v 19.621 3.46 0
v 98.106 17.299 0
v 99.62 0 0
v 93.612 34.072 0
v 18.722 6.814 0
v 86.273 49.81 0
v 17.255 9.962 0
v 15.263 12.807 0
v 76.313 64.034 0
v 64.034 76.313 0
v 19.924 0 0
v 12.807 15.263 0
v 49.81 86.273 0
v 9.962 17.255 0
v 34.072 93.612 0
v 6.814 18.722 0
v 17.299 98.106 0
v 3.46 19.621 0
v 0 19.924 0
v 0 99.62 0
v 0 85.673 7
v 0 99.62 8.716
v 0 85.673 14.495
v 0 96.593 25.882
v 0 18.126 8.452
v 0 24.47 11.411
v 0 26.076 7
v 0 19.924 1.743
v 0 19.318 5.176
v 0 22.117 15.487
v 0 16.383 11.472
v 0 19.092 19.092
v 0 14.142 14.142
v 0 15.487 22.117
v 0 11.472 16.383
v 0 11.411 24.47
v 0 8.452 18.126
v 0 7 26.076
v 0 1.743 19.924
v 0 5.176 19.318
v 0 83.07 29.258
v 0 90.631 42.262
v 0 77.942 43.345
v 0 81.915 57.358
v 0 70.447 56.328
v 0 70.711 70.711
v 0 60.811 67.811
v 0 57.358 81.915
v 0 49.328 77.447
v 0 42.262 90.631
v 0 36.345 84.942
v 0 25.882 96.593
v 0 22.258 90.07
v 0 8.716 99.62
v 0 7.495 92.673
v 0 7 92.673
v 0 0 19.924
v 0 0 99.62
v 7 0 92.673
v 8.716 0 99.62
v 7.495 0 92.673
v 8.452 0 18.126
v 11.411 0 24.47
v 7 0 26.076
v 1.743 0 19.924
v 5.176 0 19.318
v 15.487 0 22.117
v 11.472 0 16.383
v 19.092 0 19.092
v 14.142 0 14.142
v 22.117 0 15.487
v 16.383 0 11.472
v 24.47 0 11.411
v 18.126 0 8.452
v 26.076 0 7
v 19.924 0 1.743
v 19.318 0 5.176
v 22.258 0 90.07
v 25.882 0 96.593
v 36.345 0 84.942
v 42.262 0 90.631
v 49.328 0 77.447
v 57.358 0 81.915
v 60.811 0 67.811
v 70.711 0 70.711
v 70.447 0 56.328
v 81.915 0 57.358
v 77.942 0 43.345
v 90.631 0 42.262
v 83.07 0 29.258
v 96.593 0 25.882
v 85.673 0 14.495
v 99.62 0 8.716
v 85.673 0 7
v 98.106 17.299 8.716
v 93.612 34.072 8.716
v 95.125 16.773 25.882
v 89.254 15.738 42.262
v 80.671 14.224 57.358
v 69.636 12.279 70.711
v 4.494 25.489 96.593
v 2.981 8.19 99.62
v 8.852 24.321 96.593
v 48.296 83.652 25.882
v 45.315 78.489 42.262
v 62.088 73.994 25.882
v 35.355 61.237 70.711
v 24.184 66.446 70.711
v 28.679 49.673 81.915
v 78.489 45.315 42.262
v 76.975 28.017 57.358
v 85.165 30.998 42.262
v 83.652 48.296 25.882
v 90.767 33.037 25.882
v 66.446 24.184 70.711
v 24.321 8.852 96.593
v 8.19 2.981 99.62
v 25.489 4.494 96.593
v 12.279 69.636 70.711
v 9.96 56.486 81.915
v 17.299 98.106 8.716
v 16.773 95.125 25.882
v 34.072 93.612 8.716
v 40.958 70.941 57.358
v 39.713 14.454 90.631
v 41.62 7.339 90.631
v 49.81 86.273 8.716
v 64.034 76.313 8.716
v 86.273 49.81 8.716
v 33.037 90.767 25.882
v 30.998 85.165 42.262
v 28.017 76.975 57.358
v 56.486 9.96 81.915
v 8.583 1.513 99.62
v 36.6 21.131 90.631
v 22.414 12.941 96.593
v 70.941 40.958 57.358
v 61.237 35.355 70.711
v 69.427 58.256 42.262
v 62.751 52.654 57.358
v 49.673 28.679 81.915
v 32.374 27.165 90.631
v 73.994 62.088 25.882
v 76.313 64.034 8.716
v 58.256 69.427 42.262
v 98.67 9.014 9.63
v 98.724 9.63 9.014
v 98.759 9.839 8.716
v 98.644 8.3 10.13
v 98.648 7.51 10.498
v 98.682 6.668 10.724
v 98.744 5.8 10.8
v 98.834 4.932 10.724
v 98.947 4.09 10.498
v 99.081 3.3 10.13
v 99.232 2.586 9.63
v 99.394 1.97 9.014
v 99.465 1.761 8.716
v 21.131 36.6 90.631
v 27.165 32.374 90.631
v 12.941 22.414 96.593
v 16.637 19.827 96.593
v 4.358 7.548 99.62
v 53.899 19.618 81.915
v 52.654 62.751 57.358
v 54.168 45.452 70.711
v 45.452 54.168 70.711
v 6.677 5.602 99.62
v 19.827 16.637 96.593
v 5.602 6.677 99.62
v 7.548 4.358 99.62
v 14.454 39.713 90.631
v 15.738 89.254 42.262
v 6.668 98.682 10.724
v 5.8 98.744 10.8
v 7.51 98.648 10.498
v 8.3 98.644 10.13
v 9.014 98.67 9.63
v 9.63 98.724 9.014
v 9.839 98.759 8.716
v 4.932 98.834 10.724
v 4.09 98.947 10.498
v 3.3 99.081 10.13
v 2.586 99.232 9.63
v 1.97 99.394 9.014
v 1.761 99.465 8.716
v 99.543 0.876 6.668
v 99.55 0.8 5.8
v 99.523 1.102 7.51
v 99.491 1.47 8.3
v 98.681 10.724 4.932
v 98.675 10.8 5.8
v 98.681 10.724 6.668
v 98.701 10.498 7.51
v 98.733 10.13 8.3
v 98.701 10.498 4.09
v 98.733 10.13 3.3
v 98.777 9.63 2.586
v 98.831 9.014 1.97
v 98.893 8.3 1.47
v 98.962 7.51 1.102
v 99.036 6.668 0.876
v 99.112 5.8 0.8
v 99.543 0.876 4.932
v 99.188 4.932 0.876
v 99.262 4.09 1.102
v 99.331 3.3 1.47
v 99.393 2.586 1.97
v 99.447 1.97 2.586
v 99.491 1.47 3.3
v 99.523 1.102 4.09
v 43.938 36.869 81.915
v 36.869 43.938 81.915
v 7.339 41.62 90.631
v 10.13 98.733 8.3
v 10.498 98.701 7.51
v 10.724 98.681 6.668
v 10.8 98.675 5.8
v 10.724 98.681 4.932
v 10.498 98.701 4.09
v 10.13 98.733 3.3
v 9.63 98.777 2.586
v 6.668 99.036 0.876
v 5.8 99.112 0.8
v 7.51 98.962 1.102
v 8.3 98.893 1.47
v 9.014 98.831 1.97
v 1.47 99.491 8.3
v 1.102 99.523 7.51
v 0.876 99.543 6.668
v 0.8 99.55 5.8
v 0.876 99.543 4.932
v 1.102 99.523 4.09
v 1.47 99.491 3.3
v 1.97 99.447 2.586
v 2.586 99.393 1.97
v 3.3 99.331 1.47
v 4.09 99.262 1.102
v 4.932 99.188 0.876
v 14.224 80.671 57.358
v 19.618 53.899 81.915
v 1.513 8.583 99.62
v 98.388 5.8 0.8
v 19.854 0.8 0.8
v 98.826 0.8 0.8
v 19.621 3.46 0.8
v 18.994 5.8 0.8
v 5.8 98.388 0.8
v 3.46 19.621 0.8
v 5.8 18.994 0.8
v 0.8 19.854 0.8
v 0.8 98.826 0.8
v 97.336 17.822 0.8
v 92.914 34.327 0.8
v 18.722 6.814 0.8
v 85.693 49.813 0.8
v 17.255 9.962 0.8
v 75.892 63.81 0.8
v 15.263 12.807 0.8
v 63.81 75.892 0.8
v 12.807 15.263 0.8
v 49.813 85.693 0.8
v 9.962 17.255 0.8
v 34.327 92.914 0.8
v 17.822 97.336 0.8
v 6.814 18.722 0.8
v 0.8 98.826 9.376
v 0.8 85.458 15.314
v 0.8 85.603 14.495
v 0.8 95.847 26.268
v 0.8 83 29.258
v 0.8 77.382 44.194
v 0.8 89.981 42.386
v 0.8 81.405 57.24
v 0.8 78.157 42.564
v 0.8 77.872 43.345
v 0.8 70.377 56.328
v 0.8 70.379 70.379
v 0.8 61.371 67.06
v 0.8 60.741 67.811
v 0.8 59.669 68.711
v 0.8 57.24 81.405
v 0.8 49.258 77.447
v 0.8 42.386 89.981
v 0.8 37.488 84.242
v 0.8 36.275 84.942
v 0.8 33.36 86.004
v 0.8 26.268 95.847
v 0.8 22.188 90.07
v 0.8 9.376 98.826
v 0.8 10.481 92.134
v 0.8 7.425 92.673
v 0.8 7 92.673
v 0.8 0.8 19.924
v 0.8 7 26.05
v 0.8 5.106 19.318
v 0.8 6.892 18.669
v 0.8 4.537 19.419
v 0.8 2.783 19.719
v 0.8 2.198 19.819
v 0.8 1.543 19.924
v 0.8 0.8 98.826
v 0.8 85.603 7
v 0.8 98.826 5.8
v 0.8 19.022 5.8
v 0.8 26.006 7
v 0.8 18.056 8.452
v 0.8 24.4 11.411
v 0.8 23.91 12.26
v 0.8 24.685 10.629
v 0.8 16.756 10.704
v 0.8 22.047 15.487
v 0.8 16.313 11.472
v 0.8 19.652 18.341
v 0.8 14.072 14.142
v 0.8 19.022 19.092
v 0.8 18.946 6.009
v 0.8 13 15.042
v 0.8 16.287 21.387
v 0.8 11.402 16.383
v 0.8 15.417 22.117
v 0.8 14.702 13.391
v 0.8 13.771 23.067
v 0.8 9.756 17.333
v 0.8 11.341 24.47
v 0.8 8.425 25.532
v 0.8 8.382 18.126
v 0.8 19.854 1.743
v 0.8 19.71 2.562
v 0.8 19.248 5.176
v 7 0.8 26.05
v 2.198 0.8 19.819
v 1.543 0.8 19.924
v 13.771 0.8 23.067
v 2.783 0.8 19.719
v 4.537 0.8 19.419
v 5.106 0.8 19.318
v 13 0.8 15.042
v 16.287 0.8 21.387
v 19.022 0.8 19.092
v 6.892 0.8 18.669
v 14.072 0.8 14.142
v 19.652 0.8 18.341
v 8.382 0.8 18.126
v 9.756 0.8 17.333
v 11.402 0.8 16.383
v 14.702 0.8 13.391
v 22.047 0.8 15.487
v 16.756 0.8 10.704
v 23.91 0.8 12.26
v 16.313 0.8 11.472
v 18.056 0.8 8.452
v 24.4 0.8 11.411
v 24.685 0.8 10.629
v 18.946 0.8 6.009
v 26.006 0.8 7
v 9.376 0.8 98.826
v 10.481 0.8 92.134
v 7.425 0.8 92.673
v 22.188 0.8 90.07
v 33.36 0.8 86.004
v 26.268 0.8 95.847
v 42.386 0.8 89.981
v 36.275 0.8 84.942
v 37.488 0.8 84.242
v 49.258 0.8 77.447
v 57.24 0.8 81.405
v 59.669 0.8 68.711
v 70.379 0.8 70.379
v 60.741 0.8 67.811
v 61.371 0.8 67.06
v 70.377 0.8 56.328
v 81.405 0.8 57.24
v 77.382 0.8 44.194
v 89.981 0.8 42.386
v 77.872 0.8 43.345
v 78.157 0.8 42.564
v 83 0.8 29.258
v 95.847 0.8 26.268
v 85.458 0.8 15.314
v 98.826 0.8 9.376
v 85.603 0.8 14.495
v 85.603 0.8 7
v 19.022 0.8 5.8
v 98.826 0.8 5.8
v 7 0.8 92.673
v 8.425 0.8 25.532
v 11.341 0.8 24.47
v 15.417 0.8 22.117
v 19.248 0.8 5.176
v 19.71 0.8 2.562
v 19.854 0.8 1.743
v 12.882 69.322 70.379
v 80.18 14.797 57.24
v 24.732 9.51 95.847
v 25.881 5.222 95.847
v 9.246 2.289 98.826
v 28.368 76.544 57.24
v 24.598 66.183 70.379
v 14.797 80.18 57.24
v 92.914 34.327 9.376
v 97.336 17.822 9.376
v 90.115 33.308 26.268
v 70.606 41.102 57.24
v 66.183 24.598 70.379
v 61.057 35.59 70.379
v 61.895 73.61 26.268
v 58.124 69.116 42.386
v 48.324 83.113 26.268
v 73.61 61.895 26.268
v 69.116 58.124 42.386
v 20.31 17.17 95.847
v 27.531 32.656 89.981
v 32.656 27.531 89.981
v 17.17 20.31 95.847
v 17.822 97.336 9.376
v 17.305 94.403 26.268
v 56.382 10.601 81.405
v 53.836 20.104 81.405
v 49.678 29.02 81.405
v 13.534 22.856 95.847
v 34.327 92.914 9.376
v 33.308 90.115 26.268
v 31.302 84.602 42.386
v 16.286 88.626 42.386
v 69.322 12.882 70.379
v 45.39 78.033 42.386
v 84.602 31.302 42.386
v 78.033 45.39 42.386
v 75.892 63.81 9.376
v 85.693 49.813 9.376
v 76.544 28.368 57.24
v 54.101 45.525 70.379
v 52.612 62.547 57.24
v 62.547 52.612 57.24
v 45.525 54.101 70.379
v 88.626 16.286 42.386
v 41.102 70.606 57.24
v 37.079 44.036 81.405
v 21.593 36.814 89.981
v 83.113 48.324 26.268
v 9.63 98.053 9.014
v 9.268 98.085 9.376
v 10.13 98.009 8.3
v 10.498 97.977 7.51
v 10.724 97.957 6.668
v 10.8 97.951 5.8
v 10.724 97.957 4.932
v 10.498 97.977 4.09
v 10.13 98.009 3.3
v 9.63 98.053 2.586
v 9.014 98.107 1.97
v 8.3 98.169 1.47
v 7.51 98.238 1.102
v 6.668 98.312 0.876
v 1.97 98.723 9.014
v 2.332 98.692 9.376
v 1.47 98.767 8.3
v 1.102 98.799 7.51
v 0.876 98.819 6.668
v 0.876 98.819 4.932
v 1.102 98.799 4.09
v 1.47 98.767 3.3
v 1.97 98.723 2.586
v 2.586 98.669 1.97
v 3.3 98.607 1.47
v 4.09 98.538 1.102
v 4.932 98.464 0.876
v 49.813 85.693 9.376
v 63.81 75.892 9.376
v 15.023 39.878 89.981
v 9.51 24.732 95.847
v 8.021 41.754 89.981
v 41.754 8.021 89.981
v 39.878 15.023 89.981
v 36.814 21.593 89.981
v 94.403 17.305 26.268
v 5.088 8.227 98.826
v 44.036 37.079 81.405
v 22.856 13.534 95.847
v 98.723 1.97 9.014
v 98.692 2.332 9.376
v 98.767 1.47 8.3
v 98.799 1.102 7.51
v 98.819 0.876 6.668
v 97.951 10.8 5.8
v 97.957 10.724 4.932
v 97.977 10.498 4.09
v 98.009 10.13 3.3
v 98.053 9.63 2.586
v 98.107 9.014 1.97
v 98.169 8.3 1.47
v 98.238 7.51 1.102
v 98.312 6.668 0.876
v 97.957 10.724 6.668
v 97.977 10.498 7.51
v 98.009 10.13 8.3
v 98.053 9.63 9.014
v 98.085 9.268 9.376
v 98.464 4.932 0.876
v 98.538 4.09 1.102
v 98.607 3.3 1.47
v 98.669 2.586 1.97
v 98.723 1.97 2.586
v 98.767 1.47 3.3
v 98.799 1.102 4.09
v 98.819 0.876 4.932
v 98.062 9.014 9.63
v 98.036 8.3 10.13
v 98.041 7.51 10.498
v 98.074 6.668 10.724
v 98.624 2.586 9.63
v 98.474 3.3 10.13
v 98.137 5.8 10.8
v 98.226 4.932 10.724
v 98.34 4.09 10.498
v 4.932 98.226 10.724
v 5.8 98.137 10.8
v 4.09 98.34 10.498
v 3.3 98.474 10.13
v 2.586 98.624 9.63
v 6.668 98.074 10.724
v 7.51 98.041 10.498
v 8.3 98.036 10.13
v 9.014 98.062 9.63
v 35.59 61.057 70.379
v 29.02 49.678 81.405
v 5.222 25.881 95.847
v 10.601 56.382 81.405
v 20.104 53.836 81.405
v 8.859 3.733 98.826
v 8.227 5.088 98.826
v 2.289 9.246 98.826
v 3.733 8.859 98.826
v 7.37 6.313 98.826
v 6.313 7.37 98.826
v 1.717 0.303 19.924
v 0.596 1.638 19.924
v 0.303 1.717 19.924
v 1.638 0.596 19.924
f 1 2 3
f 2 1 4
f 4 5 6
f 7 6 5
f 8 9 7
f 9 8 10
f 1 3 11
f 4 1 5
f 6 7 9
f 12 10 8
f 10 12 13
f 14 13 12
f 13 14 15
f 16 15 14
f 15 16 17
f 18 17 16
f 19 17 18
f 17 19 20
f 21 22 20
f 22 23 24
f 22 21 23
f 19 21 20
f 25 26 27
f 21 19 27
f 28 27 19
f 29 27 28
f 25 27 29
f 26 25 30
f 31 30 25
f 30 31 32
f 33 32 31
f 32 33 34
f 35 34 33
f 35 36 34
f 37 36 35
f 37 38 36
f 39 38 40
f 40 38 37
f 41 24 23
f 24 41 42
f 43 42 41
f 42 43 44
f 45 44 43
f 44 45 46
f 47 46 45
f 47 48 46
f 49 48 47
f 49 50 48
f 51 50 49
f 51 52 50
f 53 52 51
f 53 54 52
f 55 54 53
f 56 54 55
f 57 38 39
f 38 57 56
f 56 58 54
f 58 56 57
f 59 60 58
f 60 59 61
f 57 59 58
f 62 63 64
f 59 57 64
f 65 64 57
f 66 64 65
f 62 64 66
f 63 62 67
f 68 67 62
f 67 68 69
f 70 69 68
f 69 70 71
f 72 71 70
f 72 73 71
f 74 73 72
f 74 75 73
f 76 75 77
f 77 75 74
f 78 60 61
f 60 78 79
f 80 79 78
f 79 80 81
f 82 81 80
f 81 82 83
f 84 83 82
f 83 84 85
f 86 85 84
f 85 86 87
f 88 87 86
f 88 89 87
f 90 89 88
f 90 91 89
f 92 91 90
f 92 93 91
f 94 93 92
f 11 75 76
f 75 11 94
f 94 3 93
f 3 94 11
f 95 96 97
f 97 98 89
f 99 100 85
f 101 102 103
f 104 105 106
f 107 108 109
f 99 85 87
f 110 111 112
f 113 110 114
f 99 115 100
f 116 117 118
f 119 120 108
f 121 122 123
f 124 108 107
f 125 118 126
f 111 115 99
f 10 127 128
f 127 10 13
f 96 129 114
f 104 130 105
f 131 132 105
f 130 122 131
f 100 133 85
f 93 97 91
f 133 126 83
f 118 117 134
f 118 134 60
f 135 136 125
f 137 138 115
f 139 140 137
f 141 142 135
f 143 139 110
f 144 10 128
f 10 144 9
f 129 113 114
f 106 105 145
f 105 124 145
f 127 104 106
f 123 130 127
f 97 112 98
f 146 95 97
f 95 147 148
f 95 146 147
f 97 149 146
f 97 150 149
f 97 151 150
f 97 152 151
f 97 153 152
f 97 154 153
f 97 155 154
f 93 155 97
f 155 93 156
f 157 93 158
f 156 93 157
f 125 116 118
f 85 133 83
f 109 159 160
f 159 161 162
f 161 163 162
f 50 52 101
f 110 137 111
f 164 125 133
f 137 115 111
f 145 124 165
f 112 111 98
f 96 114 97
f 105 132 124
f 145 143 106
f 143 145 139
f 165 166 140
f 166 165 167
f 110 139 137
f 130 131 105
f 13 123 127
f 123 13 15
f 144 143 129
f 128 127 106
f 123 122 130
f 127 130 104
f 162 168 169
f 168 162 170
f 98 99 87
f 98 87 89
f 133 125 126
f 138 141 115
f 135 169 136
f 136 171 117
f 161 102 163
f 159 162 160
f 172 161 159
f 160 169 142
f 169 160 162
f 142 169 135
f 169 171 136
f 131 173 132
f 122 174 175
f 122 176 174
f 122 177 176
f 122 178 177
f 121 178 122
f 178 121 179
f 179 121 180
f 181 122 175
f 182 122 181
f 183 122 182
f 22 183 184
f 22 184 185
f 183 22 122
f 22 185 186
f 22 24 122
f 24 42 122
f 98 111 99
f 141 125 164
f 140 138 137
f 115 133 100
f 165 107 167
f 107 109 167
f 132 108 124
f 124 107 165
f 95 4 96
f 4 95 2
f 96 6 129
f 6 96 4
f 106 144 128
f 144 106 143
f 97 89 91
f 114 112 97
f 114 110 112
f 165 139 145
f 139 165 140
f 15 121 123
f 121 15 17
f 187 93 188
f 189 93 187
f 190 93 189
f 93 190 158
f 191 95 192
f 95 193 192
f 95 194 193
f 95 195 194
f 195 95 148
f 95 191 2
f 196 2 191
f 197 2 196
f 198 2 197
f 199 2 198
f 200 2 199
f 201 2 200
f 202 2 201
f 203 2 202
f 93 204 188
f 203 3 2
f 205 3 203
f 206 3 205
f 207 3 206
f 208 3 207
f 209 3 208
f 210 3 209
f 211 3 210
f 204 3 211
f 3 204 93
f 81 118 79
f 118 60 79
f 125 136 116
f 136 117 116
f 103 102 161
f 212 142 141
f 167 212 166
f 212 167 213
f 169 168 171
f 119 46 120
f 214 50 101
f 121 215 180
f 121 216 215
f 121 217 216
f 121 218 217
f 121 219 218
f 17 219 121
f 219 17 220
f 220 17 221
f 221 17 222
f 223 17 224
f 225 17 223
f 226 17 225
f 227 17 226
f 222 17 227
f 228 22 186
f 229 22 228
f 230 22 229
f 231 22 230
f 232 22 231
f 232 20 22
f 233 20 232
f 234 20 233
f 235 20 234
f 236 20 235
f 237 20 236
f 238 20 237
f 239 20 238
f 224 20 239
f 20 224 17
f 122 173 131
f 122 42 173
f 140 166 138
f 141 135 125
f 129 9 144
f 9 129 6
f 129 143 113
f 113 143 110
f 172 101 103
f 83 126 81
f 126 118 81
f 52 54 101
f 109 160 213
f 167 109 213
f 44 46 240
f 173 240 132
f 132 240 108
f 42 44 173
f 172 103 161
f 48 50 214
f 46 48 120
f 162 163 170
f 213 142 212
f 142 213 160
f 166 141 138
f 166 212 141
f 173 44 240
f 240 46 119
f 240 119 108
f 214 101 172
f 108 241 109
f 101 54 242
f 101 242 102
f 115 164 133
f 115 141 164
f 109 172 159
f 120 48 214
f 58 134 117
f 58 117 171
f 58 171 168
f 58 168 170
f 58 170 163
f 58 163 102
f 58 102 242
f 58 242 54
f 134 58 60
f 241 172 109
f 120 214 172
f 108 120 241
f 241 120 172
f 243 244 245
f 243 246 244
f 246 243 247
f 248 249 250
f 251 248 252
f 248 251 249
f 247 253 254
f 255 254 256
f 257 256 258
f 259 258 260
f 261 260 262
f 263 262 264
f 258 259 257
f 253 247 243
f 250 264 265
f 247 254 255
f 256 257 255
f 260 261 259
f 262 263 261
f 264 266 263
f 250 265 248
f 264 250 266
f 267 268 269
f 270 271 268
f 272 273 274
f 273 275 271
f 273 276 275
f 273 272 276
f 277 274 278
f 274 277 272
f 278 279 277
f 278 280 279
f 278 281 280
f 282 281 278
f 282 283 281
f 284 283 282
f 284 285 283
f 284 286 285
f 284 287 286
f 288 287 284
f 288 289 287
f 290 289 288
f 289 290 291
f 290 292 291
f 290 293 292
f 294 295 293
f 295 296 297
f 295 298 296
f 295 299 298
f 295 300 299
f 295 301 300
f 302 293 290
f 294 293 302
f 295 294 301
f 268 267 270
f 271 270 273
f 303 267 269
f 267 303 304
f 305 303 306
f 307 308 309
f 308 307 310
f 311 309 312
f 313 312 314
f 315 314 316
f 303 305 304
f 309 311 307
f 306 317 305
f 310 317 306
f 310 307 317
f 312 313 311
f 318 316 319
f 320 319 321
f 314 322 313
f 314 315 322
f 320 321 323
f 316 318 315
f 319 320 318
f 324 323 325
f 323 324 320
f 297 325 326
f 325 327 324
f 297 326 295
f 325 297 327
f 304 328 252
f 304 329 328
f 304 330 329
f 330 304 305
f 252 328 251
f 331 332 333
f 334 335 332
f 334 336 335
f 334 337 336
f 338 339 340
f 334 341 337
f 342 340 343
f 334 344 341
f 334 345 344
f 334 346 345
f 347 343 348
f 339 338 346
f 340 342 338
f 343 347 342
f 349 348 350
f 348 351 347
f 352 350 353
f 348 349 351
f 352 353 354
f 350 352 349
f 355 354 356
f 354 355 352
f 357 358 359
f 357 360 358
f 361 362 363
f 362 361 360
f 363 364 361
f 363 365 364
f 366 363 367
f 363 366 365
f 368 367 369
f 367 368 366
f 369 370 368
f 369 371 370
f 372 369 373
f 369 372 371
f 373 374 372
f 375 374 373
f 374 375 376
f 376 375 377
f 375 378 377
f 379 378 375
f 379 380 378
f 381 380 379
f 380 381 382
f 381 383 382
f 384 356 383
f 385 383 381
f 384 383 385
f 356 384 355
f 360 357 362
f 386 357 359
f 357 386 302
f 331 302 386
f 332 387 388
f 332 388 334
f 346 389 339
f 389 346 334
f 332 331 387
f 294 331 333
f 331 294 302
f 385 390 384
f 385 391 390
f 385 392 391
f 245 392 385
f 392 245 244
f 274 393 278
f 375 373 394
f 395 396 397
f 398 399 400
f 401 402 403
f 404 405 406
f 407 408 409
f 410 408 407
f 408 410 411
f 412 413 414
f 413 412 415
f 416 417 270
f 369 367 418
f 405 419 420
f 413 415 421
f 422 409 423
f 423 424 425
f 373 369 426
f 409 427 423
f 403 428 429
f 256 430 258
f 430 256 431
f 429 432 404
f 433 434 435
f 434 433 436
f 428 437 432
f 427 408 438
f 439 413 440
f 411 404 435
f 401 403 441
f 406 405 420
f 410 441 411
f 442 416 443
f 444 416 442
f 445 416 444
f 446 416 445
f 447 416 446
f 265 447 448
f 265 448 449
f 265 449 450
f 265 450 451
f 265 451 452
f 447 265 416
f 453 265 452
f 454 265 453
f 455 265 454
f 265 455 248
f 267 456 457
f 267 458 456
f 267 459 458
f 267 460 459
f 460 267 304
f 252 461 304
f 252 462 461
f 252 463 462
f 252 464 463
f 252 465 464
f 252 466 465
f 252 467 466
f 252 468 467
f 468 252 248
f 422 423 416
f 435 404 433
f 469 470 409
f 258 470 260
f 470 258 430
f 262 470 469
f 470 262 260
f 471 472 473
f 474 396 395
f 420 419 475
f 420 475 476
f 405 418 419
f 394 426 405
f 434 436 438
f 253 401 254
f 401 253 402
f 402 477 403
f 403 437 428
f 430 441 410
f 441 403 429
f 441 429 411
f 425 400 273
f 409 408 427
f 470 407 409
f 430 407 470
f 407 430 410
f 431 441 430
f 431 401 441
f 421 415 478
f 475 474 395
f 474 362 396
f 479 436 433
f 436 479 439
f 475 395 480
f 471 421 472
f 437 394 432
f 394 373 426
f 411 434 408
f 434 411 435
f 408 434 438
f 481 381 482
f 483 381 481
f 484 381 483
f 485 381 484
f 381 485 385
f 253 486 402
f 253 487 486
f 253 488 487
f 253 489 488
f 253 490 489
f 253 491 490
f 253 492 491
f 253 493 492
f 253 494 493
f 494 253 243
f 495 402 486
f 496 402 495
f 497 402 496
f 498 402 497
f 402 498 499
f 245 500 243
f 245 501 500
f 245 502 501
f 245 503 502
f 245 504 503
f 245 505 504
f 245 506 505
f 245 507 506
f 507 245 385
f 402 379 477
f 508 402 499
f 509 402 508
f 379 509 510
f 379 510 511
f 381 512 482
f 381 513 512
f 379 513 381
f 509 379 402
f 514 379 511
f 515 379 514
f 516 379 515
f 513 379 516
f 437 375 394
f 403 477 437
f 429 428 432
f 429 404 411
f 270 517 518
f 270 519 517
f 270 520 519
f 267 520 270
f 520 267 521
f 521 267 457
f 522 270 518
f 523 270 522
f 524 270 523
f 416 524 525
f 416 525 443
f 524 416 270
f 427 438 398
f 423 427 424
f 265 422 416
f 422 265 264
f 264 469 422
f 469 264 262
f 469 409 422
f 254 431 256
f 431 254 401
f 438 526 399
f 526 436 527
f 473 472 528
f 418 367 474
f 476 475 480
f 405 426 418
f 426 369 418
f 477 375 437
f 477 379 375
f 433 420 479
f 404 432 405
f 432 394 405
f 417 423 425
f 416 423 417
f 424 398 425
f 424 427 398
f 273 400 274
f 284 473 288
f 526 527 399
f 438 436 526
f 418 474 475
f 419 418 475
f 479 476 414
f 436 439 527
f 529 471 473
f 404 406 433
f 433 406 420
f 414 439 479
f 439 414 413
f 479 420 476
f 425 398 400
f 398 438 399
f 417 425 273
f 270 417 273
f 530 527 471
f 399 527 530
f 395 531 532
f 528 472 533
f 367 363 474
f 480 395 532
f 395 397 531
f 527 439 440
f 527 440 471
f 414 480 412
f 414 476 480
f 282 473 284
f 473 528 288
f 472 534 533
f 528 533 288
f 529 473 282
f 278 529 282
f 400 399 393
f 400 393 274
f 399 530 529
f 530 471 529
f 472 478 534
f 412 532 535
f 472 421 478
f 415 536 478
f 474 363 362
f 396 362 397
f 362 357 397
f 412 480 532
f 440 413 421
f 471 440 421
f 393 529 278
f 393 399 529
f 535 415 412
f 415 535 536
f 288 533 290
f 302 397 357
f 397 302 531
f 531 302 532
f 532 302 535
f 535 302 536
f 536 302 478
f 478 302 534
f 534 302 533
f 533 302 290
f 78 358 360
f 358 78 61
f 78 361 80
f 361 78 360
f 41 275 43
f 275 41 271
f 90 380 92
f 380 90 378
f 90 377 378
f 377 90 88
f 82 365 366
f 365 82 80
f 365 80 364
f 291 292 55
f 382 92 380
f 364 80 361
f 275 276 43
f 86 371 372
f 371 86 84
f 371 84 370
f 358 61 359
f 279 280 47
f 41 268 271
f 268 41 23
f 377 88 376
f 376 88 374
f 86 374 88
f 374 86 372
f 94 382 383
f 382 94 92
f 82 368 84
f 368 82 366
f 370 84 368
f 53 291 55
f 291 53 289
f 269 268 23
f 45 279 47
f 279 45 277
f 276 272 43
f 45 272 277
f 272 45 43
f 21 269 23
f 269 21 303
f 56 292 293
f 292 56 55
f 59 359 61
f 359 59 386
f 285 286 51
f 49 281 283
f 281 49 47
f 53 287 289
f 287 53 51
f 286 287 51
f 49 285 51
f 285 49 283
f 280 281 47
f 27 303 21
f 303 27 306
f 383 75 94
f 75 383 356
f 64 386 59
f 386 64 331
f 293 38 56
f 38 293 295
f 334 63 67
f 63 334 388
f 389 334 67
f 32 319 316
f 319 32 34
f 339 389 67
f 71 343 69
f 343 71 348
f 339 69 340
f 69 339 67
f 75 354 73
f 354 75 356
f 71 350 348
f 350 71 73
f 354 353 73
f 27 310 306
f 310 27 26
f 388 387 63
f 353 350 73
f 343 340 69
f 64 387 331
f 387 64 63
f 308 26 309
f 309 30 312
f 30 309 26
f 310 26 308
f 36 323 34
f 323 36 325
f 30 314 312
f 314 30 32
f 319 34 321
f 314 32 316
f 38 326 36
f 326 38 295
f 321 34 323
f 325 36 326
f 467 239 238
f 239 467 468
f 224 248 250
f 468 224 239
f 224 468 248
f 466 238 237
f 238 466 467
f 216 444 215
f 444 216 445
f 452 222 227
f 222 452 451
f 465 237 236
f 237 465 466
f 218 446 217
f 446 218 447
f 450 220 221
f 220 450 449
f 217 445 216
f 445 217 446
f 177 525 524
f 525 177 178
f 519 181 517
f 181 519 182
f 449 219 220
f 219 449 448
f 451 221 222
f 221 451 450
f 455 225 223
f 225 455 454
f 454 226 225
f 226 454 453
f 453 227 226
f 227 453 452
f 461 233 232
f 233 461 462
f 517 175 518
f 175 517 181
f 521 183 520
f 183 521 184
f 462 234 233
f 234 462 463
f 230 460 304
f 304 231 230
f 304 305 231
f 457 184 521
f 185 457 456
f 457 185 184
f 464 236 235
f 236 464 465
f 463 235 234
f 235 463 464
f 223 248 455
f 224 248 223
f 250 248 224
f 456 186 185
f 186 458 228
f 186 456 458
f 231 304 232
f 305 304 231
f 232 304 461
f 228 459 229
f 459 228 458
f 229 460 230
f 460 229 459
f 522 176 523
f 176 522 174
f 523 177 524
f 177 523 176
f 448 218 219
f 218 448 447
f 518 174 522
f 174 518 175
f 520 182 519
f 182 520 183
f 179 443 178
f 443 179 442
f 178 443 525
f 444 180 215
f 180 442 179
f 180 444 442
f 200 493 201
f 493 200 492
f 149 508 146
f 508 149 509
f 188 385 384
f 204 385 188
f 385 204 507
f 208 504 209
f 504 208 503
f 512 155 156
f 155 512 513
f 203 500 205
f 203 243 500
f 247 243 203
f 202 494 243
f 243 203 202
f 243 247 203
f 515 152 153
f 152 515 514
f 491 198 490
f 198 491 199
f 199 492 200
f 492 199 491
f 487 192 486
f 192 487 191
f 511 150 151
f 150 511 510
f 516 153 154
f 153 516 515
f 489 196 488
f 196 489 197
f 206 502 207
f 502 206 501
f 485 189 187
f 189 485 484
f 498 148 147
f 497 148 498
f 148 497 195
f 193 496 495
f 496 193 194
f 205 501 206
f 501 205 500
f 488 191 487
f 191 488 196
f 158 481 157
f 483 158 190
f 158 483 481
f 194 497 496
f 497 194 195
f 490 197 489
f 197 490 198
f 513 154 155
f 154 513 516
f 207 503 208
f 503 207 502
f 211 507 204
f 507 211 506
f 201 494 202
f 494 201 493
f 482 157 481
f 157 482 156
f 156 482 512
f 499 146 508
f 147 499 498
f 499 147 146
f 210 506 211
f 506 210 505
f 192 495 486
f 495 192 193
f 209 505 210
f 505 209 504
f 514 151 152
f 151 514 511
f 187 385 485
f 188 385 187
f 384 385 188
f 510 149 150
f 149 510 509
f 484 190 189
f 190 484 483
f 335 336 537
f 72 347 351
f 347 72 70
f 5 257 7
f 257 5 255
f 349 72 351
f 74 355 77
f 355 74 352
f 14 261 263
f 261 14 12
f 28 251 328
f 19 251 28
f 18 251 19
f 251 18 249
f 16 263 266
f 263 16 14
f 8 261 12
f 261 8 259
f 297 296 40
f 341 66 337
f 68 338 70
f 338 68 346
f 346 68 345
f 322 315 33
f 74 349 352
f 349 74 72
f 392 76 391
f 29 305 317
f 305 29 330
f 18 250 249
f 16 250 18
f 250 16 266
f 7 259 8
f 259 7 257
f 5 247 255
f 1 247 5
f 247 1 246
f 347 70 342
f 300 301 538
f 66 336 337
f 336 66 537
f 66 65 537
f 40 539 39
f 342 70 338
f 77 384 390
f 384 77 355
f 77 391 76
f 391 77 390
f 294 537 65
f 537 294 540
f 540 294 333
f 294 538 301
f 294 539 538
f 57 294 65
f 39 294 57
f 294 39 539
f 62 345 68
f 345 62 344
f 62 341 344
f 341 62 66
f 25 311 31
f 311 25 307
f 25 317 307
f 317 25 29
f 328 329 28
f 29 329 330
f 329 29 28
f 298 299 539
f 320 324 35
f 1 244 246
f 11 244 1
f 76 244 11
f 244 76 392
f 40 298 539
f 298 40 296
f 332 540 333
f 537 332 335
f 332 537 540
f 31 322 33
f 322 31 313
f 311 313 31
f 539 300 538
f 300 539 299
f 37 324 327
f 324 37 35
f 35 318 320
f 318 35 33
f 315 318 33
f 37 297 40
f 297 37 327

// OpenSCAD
//in a corner there is a blasted power cable that needs a cover
$fn=36;
coverR = 100 ;
cableD = 10 ;
shellT = .8 ;
cornerR = 20 ;
sideH = 7; 
//the shell to fit in the corner of oscar's room
difference(){
    difference() {
        //Whole 1/8 sphere
        intersection() {
            cube([coverR,coverR,coverR]);
            sphere(r=coverR);
        }
        translate([shellT,shellT,shellT]) intersection() {
            cube([coverR,coverR,coverR]);
            sphere(r=coverR-2*shellT);
        }
    }
    //cable passthrough
    translate([shellT+cableD/2,0,cableD/2+shellT]) rotate([-90,90,0])cylinder(h=coverR+shellT,d=cableD);
    translate([0,cableD/2+shellT,cableD/2+shellT]) rotate([0,90,0])cylinder(h=coverR+shellT,d=cableD);
    //corner
    sphere(r=cornerR);
    //the inner inner volume for subtraction
    difference() {
        translate([0,0,sideH])intersection() {
            sphere(coverR-2*sideH);
            translate([-coverR,-coverR,0]) cube([2*coverR,2*coverR,coverR]);
        }
        translate([-sideH,-sideH,0])cube([2*sideH,2*sideH,coverR]);
        sphere(r=cornerR+sideH);
    }
}
